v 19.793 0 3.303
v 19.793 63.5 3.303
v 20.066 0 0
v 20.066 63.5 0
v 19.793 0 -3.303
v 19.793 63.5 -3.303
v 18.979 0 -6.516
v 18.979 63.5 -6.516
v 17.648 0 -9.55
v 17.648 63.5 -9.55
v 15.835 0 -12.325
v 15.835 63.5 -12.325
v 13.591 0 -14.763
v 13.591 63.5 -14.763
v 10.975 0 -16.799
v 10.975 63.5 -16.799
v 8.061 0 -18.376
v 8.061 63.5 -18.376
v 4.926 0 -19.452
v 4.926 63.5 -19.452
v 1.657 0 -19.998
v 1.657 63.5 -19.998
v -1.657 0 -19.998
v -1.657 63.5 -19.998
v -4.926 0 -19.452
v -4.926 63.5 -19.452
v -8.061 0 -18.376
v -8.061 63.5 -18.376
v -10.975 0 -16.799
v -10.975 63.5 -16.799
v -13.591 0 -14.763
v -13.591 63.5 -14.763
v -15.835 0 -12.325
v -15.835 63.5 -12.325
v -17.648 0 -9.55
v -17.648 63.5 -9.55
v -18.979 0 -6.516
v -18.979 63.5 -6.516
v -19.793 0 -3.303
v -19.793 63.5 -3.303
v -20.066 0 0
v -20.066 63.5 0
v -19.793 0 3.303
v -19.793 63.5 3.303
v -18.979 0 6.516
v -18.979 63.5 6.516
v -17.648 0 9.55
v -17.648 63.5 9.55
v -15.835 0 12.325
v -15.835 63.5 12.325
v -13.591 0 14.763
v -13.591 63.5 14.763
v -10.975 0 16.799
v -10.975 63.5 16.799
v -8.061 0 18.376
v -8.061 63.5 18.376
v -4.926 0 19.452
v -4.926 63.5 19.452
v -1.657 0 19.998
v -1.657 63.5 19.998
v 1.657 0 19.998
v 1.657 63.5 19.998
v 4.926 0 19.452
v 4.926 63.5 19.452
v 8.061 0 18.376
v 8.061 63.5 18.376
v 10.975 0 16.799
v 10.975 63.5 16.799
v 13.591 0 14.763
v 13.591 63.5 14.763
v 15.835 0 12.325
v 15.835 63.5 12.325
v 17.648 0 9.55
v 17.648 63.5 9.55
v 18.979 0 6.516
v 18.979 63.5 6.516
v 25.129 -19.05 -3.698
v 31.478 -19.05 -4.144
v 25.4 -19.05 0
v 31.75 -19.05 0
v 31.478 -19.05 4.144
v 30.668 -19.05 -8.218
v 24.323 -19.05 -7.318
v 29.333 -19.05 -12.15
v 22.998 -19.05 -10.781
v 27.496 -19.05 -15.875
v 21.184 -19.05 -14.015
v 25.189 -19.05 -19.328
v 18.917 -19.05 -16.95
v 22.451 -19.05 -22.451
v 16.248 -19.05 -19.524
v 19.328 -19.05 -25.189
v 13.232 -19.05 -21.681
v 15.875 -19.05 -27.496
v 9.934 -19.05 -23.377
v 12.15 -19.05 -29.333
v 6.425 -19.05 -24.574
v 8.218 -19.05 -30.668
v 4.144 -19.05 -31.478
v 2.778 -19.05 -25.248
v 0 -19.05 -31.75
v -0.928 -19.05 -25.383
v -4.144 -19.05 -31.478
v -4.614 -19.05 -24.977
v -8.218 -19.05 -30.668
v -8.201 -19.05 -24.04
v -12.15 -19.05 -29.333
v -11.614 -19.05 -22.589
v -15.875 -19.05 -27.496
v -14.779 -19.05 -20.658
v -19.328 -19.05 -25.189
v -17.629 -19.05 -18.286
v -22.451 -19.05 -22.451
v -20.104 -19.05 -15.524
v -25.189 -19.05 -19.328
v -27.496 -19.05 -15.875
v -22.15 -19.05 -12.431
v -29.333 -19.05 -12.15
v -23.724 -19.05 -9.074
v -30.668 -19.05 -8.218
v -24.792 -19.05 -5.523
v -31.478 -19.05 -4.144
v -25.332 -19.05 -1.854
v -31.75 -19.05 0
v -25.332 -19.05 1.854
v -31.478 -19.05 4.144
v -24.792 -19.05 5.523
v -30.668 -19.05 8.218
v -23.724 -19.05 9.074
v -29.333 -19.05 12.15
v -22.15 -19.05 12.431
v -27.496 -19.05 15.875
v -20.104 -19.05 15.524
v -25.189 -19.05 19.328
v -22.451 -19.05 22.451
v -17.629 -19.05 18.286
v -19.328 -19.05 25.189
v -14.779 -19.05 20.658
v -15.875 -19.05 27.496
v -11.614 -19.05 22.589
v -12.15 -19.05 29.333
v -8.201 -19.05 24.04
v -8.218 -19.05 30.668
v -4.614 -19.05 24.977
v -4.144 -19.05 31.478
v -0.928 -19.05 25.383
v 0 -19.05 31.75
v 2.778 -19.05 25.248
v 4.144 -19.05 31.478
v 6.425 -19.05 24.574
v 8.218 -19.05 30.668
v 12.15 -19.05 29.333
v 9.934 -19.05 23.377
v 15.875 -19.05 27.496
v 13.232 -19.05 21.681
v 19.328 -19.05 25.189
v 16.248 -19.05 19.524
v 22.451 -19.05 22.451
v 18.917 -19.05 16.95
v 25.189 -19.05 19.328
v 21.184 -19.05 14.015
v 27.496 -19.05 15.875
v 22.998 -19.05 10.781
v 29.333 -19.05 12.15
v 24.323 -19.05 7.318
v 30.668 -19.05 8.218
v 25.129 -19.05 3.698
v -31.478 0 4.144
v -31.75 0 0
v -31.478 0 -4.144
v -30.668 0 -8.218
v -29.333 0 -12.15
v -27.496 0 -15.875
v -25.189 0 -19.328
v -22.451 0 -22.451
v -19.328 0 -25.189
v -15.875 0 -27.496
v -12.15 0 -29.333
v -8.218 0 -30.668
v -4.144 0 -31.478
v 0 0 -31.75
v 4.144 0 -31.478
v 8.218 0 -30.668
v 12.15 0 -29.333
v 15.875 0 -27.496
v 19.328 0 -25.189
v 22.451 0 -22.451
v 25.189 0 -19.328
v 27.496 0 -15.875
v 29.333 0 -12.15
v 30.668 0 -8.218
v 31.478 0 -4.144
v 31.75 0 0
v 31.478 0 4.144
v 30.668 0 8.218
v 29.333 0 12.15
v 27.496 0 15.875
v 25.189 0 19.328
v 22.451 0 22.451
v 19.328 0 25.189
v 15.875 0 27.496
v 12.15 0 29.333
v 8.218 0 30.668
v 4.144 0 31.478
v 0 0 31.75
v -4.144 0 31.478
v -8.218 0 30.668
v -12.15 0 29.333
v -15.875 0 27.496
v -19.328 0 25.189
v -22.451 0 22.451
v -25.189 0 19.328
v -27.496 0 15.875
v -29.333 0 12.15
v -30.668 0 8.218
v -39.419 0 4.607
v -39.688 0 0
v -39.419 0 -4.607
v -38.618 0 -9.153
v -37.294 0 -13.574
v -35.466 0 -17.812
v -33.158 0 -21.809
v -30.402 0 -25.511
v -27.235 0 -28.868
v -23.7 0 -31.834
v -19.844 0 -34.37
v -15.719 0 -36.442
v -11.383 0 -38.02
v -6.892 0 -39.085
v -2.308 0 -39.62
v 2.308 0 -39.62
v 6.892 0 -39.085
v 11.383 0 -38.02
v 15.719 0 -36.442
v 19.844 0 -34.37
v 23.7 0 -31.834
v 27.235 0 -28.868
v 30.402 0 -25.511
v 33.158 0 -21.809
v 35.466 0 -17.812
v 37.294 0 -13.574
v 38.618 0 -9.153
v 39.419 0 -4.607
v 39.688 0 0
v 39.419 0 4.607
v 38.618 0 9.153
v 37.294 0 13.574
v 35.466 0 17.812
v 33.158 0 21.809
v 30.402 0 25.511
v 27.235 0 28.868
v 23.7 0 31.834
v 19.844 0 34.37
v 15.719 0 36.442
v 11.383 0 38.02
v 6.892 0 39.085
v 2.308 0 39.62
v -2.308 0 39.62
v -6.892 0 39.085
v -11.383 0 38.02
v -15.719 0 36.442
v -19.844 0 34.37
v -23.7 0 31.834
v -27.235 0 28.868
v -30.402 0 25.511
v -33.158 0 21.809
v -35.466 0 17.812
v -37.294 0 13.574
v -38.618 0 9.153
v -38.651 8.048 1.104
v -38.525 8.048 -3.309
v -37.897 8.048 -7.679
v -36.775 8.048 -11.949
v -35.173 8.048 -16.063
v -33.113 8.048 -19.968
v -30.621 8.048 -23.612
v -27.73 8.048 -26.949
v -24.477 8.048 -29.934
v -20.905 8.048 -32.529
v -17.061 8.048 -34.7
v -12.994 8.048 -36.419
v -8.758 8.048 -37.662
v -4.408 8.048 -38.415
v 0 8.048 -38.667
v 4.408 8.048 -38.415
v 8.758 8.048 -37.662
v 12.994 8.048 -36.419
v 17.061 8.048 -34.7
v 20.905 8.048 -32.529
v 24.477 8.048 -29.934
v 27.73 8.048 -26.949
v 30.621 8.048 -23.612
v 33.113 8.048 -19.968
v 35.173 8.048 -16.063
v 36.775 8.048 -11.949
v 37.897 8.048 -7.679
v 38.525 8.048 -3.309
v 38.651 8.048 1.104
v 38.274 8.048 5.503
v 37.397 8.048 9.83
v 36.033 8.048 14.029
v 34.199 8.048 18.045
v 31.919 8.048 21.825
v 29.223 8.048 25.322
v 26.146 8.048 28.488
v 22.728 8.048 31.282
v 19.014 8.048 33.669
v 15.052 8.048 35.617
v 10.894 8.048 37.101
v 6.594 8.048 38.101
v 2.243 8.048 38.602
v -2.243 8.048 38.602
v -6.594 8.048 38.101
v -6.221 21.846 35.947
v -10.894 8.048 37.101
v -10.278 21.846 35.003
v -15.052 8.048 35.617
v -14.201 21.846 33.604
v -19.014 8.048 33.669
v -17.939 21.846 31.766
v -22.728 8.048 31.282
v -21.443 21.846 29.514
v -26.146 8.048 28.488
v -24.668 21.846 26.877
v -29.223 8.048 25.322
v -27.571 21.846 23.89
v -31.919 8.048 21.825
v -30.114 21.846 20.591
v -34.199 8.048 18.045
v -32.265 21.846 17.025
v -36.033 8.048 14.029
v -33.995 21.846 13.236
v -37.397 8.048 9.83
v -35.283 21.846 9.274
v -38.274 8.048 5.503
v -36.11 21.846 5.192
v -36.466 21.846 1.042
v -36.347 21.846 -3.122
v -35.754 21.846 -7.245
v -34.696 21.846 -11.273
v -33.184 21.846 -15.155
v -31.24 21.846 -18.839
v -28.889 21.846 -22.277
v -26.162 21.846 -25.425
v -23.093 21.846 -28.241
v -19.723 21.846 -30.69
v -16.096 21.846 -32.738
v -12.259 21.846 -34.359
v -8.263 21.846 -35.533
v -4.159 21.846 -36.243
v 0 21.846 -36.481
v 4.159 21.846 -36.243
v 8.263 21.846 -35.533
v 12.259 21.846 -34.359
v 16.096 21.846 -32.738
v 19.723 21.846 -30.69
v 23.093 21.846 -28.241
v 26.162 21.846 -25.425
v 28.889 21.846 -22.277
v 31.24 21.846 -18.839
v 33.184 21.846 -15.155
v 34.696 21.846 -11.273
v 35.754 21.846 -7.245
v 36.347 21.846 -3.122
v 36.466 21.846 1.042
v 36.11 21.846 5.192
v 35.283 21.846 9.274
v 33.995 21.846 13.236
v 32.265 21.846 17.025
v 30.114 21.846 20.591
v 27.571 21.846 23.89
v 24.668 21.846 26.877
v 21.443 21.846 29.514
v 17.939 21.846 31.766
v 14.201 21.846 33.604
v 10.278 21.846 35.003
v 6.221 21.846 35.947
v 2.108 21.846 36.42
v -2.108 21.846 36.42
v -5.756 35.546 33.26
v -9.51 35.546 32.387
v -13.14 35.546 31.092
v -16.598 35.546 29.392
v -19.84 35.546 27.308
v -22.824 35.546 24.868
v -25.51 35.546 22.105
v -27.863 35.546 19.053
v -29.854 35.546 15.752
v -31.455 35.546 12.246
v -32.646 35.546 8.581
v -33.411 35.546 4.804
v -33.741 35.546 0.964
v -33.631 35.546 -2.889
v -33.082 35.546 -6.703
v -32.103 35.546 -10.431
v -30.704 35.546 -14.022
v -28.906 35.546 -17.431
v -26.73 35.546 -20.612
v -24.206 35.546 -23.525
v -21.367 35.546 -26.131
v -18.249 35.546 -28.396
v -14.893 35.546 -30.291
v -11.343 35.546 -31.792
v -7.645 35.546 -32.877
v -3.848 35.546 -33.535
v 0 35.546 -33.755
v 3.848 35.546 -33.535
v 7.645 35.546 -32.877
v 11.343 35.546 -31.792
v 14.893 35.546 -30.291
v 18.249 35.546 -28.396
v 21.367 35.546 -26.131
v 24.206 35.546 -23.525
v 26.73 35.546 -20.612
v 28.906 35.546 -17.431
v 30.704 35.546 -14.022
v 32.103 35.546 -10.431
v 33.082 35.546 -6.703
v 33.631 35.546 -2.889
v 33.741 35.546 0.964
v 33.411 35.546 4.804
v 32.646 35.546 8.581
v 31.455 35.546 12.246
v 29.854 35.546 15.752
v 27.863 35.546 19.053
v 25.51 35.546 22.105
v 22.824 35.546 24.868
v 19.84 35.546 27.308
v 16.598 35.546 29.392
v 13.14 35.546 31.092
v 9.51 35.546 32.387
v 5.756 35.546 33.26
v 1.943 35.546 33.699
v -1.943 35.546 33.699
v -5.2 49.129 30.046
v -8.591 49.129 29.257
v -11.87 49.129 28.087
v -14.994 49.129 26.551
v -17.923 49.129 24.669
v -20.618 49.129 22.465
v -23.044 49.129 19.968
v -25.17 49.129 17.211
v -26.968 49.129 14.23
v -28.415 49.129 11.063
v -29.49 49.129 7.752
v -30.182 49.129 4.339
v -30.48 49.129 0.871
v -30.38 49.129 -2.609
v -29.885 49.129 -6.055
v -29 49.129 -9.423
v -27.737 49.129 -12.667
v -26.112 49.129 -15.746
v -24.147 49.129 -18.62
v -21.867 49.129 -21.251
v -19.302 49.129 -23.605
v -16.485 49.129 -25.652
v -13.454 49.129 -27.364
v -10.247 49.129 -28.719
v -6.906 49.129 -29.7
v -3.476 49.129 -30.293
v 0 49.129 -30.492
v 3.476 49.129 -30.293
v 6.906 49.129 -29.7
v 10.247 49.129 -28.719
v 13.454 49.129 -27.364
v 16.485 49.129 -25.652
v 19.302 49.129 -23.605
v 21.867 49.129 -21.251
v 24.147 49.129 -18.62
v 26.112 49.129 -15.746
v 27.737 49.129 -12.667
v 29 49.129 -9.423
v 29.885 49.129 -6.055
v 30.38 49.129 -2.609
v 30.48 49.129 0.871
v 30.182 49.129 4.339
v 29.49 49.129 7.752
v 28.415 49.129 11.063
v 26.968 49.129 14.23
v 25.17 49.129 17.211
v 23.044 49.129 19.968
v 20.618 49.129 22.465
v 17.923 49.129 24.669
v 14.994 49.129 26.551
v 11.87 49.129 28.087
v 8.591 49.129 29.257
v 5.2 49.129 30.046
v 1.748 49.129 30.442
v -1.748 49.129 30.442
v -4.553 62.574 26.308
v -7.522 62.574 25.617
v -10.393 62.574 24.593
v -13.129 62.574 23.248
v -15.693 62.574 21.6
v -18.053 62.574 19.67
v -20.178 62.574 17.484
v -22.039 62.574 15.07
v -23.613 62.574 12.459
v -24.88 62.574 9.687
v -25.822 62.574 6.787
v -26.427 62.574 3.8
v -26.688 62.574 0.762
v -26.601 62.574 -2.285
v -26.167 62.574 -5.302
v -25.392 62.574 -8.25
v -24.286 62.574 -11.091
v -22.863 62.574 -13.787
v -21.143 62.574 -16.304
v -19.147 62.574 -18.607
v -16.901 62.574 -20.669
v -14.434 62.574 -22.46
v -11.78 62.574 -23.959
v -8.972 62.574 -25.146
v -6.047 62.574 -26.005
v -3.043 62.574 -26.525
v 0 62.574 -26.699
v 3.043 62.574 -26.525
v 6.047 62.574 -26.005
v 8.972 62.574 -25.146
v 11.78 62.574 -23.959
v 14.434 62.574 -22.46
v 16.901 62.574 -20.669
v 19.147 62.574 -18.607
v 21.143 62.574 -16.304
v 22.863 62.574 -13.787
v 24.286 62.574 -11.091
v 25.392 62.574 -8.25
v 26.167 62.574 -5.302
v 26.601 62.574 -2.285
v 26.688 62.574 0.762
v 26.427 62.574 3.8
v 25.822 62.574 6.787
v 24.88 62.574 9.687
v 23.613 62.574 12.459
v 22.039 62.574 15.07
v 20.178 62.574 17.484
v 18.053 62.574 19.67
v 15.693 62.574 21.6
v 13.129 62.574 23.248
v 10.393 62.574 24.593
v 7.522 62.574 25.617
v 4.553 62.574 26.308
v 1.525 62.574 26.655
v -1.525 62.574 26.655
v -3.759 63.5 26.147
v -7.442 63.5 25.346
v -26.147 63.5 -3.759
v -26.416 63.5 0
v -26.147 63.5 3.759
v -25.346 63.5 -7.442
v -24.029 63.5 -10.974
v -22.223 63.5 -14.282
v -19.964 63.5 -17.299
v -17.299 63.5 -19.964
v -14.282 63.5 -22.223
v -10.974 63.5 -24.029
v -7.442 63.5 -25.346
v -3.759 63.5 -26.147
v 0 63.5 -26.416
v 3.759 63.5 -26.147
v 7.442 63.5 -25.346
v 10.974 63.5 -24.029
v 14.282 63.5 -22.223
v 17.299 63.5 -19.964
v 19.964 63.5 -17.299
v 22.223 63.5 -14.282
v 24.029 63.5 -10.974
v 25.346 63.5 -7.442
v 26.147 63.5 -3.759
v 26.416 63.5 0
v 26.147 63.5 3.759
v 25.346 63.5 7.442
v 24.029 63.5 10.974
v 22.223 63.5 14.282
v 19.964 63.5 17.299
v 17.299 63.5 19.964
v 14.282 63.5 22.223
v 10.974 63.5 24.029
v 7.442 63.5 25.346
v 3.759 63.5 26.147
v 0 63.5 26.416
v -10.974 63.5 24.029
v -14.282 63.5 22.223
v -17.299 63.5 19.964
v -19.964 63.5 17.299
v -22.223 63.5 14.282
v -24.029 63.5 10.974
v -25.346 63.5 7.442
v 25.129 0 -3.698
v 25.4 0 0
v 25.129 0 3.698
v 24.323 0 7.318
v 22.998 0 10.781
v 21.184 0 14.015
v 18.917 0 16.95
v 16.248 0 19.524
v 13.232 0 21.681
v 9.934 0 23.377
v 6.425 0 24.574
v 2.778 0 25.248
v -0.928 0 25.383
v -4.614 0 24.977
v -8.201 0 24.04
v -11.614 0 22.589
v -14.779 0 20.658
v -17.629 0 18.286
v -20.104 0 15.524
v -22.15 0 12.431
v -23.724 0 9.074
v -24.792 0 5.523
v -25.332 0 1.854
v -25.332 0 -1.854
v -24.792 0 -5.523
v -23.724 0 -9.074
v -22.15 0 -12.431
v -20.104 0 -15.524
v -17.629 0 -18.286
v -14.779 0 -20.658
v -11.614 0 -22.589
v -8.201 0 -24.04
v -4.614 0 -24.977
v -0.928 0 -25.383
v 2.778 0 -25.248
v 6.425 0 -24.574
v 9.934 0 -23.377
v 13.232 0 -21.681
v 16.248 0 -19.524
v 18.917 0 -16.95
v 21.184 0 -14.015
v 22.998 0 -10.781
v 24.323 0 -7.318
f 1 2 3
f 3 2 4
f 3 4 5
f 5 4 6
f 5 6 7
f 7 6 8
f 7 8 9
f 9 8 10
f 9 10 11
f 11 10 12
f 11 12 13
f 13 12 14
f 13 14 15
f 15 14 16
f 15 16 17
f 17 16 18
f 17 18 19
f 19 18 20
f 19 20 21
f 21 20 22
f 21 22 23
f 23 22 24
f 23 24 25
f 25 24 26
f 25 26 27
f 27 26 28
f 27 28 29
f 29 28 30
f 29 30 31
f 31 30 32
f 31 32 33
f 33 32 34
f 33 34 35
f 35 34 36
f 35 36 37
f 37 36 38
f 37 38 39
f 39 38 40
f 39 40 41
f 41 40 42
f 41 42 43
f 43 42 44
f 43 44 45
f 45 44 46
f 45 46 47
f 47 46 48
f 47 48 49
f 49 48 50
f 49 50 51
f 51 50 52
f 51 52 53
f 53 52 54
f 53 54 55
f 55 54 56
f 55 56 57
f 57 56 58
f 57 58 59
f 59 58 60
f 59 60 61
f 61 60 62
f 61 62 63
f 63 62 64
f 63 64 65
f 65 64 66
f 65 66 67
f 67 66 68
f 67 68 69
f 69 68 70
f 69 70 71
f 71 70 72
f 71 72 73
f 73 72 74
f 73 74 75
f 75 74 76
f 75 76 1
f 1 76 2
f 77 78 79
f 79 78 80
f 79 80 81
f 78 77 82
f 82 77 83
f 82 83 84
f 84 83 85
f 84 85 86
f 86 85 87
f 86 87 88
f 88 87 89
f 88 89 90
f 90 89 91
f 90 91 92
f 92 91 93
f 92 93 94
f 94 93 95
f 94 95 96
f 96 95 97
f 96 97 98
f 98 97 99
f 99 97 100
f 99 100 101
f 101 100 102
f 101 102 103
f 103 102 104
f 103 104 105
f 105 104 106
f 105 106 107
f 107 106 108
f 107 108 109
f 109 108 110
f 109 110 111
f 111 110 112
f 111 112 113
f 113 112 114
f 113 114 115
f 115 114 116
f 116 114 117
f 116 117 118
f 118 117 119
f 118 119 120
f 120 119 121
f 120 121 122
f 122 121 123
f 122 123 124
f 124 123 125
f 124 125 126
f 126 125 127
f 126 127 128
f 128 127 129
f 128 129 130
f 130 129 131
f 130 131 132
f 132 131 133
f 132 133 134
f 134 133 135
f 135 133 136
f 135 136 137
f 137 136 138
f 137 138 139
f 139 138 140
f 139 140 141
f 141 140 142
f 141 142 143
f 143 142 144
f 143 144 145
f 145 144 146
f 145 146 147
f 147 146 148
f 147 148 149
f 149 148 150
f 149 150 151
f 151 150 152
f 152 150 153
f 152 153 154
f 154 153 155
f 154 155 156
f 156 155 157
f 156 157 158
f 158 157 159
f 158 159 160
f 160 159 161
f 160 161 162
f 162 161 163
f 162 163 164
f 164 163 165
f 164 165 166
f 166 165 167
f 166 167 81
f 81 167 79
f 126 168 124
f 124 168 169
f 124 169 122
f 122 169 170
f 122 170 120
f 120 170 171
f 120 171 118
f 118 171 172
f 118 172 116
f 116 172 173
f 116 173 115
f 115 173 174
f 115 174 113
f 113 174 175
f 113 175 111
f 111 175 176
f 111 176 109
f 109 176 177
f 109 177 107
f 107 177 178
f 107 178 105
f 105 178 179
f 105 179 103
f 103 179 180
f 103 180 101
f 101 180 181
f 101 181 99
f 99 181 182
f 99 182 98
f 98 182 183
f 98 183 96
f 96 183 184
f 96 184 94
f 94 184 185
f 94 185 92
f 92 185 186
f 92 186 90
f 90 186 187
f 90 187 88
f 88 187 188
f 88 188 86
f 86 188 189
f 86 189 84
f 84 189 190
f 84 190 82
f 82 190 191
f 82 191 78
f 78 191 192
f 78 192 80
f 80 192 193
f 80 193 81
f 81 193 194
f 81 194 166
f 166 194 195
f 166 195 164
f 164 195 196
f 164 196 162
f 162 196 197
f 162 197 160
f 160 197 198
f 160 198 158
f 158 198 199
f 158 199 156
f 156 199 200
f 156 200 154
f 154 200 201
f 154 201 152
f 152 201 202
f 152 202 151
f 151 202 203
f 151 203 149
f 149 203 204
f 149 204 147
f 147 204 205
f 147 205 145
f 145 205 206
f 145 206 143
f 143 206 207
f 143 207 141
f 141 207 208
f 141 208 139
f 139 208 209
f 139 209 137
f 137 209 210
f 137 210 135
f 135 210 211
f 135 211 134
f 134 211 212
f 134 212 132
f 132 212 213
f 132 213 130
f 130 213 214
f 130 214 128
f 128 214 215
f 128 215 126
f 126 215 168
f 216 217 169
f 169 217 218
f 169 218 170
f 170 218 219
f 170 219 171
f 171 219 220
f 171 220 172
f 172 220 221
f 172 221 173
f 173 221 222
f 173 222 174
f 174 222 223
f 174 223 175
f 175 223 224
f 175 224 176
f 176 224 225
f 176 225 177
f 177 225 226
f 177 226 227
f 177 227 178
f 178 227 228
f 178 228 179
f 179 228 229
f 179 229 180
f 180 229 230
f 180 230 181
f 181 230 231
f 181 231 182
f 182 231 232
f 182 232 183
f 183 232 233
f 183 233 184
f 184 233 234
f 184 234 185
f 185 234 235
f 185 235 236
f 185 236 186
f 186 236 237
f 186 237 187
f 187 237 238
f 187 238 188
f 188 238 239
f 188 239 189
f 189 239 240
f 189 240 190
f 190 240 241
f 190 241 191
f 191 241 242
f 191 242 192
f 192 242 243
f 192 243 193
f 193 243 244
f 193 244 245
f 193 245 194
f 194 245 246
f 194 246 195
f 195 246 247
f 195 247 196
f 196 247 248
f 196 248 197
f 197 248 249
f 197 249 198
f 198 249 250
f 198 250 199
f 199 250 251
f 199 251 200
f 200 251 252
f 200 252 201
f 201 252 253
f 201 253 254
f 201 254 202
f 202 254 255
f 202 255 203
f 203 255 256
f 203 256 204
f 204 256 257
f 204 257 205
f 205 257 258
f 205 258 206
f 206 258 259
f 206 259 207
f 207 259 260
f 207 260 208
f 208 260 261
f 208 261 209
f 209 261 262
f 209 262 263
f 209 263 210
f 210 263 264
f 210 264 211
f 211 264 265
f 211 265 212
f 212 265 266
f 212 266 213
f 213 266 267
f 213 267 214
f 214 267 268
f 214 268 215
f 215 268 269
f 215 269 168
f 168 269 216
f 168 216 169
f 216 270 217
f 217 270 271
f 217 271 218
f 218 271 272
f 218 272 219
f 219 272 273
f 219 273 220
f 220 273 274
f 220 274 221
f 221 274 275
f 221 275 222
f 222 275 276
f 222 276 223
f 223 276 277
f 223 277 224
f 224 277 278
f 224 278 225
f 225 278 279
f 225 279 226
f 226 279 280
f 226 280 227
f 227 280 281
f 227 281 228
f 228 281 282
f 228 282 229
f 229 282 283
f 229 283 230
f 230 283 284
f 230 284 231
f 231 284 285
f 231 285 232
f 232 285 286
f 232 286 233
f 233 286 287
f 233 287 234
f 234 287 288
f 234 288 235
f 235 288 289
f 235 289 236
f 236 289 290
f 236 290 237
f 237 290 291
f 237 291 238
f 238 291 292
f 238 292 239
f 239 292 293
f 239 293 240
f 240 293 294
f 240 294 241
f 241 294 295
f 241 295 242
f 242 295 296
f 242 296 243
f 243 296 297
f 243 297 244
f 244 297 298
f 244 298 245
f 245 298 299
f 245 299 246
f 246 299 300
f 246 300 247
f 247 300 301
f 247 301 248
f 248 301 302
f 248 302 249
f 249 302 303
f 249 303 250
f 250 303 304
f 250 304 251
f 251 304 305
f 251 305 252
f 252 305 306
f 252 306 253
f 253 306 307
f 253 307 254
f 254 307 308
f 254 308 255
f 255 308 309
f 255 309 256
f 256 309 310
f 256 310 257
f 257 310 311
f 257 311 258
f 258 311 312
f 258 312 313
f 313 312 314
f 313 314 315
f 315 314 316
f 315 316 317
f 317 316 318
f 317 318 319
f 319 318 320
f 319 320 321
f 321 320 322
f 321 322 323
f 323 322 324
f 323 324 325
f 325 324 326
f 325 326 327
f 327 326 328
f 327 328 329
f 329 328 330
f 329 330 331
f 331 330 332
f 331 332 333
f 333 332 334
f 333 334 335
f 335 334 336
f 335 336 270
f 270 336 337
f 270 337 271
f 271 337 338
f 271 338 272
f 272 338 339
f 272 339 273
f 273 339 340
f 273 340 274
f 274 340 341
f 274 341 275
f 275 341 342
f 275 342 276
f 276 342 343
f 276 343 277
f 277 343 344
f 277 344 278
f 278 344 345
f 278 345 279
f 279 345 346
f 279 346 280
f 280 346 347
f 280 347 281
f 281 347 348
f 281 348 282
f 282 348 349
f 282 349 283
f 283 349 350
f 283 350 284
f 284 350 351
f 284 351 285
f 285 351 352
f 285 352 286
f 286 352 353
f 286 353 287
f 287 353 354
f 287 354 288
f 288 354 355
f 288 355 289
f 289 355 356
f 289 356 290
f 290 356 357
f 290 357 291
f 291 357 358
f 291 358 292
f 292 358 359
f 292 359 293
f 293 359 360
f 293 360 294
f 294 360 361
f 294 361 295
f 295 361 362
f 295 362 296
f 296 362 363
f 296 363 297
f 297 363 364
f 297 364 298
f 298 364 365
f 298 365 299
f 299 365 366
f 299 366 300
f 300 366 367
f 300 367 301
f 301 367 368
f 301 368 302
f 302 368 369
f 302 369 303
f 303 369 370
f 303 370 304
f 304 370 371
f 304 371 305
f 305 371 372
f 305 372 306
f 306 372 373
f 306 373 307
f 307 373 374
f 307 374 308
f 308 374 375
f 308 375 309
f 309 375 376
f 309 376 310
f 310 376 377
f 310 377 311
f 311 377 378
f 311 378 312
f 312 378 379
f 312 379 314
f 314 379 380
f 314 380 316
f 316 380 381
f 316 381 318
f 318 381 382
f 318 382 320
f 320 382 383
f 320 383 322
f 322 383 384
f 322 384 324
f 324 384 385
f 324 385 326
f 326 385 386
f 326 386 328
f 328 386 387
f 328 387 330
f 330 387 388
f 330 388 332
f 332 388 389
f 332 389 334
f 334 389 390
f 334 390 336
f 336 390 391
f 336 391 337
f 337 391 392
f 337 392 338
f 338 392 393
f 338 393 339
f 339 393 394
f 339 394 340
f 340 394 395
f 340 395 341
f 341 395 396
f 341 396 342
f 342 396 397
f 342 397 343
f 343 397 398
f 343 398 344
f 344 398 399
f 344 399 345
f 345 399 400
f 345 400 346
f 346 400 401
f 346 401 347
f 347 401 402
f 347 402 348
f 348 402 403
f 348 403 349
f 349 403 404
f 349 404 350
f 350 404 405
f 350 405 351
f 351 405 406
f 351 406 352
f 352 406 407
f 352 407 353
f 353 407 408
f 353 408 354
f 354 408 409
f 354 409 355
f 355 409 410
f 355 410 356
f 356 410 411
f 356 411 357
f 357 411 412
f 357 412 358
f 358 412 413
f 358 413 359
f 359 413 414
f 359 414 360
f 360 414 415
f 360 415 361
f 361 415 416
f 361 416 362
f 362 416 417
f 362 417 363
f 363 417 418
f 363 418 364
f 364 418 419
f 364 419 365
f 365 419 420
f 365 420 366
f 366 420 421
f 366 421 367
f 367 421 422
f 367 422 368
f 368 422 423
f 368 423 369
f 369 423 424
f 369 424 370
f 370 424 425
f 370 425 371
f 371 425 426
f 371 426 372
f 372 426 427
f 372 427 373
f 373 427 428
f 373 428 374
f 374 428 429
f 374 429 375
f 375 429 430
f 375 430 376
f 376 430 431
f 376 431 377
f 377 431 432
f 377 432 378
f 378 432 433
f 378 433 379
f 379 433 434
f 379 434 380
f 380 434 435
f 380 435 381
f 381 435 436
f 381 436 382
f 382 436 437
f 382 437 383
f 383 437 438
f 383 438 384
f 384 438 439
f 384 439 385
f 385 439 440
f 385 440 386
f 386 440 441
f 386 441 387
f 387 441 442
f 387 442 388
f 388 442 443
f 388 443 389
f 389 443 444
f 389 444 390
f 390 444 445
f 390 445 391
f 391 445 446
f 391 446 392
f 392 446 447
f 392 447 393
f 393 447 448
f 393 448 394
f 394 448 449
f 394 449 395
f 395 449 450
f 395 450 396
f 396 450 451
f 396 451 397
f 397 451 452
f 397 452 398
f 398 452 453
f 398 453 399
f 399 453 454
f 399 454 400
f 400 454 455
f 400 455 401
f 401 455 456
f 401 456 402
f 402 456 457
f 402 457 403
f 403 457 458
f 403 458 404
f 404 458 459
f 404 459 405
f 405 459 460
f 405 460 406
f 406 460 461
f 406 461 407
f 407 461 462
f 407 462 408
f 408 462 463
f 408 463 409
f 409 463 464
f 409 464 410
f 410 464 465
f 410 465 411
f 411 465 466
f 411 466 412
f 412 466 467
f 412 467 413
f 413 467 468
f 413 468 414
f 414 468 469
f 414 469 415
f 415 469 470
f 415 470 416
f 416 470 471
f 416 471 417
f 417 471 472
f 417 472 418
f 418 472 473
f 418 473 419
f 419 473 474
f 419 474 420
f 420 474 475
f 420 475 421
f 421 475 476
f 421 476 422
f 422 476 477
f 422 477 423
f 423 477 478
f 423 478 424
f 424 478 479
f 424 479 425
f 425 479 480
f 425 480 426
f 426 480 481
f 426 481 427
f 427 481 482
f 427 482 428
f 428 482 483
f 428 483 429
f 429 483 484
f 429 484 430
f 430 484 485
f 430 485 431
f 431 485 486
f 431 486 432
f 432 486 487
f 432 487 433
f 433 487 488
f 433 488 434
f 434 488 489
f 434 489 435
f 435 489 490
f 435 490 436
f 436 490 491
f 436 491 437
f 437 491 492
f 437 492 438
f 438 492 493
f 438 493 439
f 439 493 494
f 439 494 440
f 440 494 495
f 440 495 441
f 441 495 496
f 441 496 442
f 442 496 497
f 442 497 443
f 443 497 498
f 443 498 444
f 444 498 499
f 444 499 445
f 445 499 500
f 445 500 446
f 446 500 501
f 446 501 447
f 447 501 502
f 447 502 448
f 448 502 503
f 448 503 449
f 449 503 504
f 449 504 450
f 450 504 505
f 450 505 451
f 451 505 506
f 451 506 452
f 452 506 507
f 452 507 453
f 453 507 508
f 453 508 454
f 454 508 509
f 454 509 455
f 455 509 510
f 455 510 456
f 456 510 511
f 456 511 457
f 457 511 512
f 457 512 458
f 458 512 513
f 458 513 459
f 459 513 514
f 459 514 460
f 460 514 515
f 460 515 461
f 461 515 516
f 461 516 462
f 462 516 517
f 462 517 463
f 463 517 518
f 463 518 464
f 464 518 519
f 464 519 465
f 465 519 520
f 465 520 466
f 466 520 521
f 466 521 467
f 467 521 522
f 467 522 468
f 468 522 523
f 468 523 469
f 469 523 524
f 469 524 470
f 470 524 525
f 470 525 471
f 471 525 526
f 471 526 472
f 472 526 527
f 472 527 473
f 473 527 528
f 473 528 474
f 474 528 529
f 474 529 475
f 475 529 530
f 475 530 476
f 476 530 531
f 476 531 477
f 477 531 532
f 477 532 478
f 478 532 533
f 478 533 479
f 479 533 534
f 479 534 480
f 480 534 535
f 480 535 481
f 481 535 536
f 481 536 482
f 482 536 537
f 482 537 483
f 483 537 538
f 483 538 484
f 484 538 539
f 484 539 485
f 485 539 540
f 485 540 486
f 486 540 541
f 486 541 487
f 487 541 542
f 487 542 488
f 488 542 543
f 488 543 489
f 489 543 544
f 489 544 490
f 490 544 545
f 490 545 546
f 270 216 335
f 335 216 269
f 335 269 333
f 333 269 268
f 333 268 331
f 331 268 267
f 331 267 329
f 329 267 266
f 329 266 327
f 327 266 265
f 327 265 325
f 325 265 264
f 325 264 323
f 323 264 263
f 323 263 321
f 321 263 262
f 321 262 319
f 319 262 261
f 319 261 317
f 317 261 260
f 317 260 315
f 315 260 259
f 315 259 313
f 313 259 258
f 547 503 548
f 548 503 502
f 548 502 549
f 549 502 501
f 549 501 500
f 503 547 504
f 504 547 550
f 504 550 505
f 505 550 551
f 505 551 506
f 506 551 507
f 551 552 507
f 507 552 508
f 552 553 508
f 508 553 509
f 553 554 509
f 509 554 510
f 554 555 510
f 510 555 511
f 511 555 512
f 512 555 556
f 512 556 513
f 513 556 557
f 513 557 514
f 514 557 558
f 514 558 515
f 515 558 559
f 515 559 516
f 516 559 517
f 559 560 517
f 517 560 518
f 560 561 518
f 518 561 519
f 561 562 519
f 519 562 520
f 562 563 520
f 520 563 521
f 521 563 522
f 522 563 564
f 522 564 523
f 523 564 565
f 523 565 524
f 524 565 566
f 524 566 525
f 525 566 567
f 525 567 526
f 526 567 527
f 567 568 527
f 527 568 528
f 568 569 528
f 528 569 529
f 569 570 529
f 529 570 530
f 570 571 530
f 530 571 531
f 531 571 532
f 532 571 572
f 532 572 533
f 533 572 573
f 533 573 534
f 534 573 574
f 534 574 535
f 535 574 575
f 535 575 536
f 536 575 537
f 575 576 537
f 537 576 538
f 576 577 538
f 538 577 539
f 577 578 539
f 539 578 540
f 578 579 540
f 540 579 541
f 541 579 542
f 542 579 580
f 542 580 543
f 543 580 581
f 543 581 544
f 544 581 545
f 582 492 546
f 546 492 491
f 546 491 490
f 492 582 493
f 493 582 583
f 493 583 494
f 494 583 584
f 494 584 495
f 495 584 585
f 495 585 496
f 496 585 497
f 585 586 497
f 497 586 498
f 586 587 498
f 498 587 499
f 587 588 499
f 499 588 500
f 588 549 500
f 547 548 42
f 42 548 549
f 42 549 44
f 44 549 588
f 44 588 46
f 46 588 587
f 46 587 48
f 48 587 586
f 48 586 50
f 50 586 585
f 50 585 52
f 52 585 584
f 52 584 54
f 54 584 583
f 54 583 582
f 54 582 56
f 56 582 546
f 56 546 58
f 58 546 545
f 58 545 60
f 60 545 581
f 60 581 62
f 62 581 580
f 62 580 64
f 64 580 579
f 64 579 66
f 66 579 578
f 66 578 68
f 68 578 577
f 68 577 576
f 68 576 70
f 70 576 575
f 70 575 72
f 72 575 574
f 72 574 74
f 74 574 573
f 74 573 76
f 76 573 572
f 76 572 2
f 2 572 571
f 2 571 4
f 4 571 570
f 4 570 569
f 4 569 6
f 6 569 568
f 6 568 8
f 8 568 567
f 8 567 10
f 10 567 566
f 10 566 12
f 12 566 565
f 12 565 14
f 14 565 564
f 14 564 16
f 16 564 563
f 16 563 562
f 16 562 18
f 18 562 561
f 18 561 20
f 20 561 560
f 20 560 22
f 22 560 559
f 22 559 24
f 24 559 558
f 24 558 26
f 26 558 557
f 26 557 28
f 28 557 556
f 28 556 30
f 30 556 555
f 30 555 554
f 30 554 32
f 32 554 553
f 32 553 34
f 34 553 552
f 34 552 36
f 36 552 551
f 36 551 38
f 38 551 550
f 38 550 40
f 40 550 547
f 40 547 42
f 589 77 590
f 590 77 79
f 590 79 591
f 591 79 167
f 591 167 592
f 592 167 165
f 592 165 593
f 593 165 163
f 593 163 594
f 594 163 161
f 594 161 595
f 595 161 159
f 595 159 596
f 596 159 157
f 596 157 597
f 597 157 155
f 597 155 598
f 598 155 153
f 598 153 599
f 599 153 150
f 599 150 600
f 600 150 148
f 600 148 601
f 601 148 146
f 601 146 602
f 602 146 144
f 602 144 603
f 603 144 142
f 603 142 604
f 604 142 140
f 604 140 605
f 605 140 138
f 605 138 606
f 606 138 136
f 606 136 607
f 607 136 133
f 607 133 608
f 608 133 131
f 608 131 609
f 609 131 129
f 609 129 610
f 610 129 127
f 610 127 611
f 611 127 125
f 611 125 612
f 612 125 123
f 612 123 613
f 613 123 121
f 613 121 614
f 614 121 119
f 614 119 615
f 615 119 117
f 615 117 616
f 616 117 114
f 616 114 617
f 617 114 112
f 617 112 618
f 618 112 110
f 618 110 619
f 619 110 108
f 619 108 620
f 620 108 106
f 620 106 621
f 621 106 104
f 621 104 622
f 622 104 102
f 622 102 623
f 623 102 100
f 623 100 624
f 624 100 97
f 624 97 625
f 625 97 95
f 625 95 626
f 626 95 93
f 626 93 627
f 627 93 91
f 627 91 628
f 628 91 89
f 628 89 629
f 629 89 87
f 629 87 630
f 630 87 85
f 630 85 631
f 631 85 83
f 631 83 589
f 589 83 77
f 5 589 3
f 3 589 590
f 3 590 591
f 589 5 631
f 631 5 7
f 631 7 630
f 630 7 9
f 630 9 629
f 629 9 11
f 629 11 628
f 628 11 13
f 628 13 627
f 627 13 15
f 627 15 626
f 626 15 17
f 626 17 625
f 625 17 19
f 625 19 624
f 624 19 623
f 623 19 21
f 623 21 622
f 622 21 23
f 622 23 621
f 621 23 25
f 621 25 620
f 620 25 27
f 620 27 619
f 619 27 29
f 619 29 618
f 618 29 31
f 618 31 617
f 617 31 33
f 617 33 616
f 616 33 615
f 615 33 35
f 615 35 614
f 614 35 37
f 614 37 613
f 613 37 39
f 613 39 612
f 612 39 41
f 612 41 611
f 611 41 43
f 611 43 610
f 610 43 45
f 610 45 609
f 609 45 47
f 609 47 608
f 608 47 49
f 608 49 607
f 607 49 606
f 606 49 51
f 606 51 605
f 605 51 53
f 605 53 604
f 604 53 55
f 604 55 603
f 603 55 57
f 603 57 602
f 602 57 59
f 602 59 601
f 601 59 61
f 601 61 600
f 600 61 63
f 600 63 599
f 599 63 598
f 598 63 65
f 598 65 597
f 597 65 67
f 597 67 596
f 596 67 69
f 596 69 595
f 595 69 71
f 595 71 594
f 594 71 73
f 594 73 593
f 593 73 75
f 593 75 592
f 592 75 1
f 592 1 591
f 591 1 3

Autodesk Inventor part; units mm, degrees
ref_plane "YZ Plane" through (0, 0, 0) normal (1, 0, 0) x (0, 1, 0)
ref_plane "XZ Plane" through (0, 0, 0) normal (0, 1, 0) x (-1, 0, 0)
ref_plane "XY Plane" through (0, 0, 0) normal (0, 0, 1) x (1, 0, 0)
sketch "Sketch1" plane through (0, 0, 0) normal (0, 0, 1) x (1, 0, 0)
  line L0 (0, 0) -> (-39.6875, 0)
  line L1 (0, 0) -> (0, 127)
  arc A0 (0, 127) -> (-39.6875, 0) centre (313.5764, -40.6938) ccw
  line L2 (0, 0) -> (-38.1, 0)
  line L3 (-38.1, 0) -> (-38.1, -38.1)
  line L4 (-38.1, -38.1) -> (0, -38.1)
  line L5 (0, -38.1) -> (0, 0)
  line L6 (0, 63.5) -> (-26.4163, 63.5)
  line L7 (-20.0663, 63.5) -> (0, 63.5)
  line L8 (0, 63.5) -> (0, 44.45)
  line L9 (0, 44.45) -> (-20.0663, 44.45)
  line L10 (-20.0663, 44.45) -> (-20.0663, 63.5)
  line L11 (-20.0663, 44.45) -> (-20.0663, 0)
  line L12 (-20.0663, 0) -> (-31.75, 0)
  line L13 (-31.75, 0) -> (-31.75, -19.05)
  line L14 (-31.75, -19.05) -> (-20.0663, -19.05)
  line L15 (-20.0663, -19.05) -> (-20.0663, 0)
  line L16 (-31.75, -19.05) -> (-31.75, -38.1)
  dimension "d0" = 39.6875
  dimension "d1" = 127
  dimension "d3" = 355.6
  dimension "d5" = 38.1
  dimension "d6" = 38.1
  dimension "d7" = 63.5
  dimension "d9" = 19.05
  dimension "d10" = 6.35
  dimension "d11" = 19.05
  dimension "d12" = 6.35
revolve "Revolution1" add sketch "Sketch1" angle 360 about axis through (0, 0, 0) along (0, 1, 0) contours L15 L14 L13 L0 | L0 A0 L6 L10 L11
sketch "Sketch2" plane through (0, -19.05, 0) normal (0, -1, 0) x (1, 0, 0)
  circle A0 centre (0, 0) radius 26.4163 projected
  circle A1 centre (0, 0) radius 25.4
  circle A2 centre (0, 0) radius 31.75 projected
  dimension "d13" = 6.35
extrude "Extrusion1" cut sketch "Sketch2" against normal blind 19.05 contours A1
properties part number "NoseCone_S2"
